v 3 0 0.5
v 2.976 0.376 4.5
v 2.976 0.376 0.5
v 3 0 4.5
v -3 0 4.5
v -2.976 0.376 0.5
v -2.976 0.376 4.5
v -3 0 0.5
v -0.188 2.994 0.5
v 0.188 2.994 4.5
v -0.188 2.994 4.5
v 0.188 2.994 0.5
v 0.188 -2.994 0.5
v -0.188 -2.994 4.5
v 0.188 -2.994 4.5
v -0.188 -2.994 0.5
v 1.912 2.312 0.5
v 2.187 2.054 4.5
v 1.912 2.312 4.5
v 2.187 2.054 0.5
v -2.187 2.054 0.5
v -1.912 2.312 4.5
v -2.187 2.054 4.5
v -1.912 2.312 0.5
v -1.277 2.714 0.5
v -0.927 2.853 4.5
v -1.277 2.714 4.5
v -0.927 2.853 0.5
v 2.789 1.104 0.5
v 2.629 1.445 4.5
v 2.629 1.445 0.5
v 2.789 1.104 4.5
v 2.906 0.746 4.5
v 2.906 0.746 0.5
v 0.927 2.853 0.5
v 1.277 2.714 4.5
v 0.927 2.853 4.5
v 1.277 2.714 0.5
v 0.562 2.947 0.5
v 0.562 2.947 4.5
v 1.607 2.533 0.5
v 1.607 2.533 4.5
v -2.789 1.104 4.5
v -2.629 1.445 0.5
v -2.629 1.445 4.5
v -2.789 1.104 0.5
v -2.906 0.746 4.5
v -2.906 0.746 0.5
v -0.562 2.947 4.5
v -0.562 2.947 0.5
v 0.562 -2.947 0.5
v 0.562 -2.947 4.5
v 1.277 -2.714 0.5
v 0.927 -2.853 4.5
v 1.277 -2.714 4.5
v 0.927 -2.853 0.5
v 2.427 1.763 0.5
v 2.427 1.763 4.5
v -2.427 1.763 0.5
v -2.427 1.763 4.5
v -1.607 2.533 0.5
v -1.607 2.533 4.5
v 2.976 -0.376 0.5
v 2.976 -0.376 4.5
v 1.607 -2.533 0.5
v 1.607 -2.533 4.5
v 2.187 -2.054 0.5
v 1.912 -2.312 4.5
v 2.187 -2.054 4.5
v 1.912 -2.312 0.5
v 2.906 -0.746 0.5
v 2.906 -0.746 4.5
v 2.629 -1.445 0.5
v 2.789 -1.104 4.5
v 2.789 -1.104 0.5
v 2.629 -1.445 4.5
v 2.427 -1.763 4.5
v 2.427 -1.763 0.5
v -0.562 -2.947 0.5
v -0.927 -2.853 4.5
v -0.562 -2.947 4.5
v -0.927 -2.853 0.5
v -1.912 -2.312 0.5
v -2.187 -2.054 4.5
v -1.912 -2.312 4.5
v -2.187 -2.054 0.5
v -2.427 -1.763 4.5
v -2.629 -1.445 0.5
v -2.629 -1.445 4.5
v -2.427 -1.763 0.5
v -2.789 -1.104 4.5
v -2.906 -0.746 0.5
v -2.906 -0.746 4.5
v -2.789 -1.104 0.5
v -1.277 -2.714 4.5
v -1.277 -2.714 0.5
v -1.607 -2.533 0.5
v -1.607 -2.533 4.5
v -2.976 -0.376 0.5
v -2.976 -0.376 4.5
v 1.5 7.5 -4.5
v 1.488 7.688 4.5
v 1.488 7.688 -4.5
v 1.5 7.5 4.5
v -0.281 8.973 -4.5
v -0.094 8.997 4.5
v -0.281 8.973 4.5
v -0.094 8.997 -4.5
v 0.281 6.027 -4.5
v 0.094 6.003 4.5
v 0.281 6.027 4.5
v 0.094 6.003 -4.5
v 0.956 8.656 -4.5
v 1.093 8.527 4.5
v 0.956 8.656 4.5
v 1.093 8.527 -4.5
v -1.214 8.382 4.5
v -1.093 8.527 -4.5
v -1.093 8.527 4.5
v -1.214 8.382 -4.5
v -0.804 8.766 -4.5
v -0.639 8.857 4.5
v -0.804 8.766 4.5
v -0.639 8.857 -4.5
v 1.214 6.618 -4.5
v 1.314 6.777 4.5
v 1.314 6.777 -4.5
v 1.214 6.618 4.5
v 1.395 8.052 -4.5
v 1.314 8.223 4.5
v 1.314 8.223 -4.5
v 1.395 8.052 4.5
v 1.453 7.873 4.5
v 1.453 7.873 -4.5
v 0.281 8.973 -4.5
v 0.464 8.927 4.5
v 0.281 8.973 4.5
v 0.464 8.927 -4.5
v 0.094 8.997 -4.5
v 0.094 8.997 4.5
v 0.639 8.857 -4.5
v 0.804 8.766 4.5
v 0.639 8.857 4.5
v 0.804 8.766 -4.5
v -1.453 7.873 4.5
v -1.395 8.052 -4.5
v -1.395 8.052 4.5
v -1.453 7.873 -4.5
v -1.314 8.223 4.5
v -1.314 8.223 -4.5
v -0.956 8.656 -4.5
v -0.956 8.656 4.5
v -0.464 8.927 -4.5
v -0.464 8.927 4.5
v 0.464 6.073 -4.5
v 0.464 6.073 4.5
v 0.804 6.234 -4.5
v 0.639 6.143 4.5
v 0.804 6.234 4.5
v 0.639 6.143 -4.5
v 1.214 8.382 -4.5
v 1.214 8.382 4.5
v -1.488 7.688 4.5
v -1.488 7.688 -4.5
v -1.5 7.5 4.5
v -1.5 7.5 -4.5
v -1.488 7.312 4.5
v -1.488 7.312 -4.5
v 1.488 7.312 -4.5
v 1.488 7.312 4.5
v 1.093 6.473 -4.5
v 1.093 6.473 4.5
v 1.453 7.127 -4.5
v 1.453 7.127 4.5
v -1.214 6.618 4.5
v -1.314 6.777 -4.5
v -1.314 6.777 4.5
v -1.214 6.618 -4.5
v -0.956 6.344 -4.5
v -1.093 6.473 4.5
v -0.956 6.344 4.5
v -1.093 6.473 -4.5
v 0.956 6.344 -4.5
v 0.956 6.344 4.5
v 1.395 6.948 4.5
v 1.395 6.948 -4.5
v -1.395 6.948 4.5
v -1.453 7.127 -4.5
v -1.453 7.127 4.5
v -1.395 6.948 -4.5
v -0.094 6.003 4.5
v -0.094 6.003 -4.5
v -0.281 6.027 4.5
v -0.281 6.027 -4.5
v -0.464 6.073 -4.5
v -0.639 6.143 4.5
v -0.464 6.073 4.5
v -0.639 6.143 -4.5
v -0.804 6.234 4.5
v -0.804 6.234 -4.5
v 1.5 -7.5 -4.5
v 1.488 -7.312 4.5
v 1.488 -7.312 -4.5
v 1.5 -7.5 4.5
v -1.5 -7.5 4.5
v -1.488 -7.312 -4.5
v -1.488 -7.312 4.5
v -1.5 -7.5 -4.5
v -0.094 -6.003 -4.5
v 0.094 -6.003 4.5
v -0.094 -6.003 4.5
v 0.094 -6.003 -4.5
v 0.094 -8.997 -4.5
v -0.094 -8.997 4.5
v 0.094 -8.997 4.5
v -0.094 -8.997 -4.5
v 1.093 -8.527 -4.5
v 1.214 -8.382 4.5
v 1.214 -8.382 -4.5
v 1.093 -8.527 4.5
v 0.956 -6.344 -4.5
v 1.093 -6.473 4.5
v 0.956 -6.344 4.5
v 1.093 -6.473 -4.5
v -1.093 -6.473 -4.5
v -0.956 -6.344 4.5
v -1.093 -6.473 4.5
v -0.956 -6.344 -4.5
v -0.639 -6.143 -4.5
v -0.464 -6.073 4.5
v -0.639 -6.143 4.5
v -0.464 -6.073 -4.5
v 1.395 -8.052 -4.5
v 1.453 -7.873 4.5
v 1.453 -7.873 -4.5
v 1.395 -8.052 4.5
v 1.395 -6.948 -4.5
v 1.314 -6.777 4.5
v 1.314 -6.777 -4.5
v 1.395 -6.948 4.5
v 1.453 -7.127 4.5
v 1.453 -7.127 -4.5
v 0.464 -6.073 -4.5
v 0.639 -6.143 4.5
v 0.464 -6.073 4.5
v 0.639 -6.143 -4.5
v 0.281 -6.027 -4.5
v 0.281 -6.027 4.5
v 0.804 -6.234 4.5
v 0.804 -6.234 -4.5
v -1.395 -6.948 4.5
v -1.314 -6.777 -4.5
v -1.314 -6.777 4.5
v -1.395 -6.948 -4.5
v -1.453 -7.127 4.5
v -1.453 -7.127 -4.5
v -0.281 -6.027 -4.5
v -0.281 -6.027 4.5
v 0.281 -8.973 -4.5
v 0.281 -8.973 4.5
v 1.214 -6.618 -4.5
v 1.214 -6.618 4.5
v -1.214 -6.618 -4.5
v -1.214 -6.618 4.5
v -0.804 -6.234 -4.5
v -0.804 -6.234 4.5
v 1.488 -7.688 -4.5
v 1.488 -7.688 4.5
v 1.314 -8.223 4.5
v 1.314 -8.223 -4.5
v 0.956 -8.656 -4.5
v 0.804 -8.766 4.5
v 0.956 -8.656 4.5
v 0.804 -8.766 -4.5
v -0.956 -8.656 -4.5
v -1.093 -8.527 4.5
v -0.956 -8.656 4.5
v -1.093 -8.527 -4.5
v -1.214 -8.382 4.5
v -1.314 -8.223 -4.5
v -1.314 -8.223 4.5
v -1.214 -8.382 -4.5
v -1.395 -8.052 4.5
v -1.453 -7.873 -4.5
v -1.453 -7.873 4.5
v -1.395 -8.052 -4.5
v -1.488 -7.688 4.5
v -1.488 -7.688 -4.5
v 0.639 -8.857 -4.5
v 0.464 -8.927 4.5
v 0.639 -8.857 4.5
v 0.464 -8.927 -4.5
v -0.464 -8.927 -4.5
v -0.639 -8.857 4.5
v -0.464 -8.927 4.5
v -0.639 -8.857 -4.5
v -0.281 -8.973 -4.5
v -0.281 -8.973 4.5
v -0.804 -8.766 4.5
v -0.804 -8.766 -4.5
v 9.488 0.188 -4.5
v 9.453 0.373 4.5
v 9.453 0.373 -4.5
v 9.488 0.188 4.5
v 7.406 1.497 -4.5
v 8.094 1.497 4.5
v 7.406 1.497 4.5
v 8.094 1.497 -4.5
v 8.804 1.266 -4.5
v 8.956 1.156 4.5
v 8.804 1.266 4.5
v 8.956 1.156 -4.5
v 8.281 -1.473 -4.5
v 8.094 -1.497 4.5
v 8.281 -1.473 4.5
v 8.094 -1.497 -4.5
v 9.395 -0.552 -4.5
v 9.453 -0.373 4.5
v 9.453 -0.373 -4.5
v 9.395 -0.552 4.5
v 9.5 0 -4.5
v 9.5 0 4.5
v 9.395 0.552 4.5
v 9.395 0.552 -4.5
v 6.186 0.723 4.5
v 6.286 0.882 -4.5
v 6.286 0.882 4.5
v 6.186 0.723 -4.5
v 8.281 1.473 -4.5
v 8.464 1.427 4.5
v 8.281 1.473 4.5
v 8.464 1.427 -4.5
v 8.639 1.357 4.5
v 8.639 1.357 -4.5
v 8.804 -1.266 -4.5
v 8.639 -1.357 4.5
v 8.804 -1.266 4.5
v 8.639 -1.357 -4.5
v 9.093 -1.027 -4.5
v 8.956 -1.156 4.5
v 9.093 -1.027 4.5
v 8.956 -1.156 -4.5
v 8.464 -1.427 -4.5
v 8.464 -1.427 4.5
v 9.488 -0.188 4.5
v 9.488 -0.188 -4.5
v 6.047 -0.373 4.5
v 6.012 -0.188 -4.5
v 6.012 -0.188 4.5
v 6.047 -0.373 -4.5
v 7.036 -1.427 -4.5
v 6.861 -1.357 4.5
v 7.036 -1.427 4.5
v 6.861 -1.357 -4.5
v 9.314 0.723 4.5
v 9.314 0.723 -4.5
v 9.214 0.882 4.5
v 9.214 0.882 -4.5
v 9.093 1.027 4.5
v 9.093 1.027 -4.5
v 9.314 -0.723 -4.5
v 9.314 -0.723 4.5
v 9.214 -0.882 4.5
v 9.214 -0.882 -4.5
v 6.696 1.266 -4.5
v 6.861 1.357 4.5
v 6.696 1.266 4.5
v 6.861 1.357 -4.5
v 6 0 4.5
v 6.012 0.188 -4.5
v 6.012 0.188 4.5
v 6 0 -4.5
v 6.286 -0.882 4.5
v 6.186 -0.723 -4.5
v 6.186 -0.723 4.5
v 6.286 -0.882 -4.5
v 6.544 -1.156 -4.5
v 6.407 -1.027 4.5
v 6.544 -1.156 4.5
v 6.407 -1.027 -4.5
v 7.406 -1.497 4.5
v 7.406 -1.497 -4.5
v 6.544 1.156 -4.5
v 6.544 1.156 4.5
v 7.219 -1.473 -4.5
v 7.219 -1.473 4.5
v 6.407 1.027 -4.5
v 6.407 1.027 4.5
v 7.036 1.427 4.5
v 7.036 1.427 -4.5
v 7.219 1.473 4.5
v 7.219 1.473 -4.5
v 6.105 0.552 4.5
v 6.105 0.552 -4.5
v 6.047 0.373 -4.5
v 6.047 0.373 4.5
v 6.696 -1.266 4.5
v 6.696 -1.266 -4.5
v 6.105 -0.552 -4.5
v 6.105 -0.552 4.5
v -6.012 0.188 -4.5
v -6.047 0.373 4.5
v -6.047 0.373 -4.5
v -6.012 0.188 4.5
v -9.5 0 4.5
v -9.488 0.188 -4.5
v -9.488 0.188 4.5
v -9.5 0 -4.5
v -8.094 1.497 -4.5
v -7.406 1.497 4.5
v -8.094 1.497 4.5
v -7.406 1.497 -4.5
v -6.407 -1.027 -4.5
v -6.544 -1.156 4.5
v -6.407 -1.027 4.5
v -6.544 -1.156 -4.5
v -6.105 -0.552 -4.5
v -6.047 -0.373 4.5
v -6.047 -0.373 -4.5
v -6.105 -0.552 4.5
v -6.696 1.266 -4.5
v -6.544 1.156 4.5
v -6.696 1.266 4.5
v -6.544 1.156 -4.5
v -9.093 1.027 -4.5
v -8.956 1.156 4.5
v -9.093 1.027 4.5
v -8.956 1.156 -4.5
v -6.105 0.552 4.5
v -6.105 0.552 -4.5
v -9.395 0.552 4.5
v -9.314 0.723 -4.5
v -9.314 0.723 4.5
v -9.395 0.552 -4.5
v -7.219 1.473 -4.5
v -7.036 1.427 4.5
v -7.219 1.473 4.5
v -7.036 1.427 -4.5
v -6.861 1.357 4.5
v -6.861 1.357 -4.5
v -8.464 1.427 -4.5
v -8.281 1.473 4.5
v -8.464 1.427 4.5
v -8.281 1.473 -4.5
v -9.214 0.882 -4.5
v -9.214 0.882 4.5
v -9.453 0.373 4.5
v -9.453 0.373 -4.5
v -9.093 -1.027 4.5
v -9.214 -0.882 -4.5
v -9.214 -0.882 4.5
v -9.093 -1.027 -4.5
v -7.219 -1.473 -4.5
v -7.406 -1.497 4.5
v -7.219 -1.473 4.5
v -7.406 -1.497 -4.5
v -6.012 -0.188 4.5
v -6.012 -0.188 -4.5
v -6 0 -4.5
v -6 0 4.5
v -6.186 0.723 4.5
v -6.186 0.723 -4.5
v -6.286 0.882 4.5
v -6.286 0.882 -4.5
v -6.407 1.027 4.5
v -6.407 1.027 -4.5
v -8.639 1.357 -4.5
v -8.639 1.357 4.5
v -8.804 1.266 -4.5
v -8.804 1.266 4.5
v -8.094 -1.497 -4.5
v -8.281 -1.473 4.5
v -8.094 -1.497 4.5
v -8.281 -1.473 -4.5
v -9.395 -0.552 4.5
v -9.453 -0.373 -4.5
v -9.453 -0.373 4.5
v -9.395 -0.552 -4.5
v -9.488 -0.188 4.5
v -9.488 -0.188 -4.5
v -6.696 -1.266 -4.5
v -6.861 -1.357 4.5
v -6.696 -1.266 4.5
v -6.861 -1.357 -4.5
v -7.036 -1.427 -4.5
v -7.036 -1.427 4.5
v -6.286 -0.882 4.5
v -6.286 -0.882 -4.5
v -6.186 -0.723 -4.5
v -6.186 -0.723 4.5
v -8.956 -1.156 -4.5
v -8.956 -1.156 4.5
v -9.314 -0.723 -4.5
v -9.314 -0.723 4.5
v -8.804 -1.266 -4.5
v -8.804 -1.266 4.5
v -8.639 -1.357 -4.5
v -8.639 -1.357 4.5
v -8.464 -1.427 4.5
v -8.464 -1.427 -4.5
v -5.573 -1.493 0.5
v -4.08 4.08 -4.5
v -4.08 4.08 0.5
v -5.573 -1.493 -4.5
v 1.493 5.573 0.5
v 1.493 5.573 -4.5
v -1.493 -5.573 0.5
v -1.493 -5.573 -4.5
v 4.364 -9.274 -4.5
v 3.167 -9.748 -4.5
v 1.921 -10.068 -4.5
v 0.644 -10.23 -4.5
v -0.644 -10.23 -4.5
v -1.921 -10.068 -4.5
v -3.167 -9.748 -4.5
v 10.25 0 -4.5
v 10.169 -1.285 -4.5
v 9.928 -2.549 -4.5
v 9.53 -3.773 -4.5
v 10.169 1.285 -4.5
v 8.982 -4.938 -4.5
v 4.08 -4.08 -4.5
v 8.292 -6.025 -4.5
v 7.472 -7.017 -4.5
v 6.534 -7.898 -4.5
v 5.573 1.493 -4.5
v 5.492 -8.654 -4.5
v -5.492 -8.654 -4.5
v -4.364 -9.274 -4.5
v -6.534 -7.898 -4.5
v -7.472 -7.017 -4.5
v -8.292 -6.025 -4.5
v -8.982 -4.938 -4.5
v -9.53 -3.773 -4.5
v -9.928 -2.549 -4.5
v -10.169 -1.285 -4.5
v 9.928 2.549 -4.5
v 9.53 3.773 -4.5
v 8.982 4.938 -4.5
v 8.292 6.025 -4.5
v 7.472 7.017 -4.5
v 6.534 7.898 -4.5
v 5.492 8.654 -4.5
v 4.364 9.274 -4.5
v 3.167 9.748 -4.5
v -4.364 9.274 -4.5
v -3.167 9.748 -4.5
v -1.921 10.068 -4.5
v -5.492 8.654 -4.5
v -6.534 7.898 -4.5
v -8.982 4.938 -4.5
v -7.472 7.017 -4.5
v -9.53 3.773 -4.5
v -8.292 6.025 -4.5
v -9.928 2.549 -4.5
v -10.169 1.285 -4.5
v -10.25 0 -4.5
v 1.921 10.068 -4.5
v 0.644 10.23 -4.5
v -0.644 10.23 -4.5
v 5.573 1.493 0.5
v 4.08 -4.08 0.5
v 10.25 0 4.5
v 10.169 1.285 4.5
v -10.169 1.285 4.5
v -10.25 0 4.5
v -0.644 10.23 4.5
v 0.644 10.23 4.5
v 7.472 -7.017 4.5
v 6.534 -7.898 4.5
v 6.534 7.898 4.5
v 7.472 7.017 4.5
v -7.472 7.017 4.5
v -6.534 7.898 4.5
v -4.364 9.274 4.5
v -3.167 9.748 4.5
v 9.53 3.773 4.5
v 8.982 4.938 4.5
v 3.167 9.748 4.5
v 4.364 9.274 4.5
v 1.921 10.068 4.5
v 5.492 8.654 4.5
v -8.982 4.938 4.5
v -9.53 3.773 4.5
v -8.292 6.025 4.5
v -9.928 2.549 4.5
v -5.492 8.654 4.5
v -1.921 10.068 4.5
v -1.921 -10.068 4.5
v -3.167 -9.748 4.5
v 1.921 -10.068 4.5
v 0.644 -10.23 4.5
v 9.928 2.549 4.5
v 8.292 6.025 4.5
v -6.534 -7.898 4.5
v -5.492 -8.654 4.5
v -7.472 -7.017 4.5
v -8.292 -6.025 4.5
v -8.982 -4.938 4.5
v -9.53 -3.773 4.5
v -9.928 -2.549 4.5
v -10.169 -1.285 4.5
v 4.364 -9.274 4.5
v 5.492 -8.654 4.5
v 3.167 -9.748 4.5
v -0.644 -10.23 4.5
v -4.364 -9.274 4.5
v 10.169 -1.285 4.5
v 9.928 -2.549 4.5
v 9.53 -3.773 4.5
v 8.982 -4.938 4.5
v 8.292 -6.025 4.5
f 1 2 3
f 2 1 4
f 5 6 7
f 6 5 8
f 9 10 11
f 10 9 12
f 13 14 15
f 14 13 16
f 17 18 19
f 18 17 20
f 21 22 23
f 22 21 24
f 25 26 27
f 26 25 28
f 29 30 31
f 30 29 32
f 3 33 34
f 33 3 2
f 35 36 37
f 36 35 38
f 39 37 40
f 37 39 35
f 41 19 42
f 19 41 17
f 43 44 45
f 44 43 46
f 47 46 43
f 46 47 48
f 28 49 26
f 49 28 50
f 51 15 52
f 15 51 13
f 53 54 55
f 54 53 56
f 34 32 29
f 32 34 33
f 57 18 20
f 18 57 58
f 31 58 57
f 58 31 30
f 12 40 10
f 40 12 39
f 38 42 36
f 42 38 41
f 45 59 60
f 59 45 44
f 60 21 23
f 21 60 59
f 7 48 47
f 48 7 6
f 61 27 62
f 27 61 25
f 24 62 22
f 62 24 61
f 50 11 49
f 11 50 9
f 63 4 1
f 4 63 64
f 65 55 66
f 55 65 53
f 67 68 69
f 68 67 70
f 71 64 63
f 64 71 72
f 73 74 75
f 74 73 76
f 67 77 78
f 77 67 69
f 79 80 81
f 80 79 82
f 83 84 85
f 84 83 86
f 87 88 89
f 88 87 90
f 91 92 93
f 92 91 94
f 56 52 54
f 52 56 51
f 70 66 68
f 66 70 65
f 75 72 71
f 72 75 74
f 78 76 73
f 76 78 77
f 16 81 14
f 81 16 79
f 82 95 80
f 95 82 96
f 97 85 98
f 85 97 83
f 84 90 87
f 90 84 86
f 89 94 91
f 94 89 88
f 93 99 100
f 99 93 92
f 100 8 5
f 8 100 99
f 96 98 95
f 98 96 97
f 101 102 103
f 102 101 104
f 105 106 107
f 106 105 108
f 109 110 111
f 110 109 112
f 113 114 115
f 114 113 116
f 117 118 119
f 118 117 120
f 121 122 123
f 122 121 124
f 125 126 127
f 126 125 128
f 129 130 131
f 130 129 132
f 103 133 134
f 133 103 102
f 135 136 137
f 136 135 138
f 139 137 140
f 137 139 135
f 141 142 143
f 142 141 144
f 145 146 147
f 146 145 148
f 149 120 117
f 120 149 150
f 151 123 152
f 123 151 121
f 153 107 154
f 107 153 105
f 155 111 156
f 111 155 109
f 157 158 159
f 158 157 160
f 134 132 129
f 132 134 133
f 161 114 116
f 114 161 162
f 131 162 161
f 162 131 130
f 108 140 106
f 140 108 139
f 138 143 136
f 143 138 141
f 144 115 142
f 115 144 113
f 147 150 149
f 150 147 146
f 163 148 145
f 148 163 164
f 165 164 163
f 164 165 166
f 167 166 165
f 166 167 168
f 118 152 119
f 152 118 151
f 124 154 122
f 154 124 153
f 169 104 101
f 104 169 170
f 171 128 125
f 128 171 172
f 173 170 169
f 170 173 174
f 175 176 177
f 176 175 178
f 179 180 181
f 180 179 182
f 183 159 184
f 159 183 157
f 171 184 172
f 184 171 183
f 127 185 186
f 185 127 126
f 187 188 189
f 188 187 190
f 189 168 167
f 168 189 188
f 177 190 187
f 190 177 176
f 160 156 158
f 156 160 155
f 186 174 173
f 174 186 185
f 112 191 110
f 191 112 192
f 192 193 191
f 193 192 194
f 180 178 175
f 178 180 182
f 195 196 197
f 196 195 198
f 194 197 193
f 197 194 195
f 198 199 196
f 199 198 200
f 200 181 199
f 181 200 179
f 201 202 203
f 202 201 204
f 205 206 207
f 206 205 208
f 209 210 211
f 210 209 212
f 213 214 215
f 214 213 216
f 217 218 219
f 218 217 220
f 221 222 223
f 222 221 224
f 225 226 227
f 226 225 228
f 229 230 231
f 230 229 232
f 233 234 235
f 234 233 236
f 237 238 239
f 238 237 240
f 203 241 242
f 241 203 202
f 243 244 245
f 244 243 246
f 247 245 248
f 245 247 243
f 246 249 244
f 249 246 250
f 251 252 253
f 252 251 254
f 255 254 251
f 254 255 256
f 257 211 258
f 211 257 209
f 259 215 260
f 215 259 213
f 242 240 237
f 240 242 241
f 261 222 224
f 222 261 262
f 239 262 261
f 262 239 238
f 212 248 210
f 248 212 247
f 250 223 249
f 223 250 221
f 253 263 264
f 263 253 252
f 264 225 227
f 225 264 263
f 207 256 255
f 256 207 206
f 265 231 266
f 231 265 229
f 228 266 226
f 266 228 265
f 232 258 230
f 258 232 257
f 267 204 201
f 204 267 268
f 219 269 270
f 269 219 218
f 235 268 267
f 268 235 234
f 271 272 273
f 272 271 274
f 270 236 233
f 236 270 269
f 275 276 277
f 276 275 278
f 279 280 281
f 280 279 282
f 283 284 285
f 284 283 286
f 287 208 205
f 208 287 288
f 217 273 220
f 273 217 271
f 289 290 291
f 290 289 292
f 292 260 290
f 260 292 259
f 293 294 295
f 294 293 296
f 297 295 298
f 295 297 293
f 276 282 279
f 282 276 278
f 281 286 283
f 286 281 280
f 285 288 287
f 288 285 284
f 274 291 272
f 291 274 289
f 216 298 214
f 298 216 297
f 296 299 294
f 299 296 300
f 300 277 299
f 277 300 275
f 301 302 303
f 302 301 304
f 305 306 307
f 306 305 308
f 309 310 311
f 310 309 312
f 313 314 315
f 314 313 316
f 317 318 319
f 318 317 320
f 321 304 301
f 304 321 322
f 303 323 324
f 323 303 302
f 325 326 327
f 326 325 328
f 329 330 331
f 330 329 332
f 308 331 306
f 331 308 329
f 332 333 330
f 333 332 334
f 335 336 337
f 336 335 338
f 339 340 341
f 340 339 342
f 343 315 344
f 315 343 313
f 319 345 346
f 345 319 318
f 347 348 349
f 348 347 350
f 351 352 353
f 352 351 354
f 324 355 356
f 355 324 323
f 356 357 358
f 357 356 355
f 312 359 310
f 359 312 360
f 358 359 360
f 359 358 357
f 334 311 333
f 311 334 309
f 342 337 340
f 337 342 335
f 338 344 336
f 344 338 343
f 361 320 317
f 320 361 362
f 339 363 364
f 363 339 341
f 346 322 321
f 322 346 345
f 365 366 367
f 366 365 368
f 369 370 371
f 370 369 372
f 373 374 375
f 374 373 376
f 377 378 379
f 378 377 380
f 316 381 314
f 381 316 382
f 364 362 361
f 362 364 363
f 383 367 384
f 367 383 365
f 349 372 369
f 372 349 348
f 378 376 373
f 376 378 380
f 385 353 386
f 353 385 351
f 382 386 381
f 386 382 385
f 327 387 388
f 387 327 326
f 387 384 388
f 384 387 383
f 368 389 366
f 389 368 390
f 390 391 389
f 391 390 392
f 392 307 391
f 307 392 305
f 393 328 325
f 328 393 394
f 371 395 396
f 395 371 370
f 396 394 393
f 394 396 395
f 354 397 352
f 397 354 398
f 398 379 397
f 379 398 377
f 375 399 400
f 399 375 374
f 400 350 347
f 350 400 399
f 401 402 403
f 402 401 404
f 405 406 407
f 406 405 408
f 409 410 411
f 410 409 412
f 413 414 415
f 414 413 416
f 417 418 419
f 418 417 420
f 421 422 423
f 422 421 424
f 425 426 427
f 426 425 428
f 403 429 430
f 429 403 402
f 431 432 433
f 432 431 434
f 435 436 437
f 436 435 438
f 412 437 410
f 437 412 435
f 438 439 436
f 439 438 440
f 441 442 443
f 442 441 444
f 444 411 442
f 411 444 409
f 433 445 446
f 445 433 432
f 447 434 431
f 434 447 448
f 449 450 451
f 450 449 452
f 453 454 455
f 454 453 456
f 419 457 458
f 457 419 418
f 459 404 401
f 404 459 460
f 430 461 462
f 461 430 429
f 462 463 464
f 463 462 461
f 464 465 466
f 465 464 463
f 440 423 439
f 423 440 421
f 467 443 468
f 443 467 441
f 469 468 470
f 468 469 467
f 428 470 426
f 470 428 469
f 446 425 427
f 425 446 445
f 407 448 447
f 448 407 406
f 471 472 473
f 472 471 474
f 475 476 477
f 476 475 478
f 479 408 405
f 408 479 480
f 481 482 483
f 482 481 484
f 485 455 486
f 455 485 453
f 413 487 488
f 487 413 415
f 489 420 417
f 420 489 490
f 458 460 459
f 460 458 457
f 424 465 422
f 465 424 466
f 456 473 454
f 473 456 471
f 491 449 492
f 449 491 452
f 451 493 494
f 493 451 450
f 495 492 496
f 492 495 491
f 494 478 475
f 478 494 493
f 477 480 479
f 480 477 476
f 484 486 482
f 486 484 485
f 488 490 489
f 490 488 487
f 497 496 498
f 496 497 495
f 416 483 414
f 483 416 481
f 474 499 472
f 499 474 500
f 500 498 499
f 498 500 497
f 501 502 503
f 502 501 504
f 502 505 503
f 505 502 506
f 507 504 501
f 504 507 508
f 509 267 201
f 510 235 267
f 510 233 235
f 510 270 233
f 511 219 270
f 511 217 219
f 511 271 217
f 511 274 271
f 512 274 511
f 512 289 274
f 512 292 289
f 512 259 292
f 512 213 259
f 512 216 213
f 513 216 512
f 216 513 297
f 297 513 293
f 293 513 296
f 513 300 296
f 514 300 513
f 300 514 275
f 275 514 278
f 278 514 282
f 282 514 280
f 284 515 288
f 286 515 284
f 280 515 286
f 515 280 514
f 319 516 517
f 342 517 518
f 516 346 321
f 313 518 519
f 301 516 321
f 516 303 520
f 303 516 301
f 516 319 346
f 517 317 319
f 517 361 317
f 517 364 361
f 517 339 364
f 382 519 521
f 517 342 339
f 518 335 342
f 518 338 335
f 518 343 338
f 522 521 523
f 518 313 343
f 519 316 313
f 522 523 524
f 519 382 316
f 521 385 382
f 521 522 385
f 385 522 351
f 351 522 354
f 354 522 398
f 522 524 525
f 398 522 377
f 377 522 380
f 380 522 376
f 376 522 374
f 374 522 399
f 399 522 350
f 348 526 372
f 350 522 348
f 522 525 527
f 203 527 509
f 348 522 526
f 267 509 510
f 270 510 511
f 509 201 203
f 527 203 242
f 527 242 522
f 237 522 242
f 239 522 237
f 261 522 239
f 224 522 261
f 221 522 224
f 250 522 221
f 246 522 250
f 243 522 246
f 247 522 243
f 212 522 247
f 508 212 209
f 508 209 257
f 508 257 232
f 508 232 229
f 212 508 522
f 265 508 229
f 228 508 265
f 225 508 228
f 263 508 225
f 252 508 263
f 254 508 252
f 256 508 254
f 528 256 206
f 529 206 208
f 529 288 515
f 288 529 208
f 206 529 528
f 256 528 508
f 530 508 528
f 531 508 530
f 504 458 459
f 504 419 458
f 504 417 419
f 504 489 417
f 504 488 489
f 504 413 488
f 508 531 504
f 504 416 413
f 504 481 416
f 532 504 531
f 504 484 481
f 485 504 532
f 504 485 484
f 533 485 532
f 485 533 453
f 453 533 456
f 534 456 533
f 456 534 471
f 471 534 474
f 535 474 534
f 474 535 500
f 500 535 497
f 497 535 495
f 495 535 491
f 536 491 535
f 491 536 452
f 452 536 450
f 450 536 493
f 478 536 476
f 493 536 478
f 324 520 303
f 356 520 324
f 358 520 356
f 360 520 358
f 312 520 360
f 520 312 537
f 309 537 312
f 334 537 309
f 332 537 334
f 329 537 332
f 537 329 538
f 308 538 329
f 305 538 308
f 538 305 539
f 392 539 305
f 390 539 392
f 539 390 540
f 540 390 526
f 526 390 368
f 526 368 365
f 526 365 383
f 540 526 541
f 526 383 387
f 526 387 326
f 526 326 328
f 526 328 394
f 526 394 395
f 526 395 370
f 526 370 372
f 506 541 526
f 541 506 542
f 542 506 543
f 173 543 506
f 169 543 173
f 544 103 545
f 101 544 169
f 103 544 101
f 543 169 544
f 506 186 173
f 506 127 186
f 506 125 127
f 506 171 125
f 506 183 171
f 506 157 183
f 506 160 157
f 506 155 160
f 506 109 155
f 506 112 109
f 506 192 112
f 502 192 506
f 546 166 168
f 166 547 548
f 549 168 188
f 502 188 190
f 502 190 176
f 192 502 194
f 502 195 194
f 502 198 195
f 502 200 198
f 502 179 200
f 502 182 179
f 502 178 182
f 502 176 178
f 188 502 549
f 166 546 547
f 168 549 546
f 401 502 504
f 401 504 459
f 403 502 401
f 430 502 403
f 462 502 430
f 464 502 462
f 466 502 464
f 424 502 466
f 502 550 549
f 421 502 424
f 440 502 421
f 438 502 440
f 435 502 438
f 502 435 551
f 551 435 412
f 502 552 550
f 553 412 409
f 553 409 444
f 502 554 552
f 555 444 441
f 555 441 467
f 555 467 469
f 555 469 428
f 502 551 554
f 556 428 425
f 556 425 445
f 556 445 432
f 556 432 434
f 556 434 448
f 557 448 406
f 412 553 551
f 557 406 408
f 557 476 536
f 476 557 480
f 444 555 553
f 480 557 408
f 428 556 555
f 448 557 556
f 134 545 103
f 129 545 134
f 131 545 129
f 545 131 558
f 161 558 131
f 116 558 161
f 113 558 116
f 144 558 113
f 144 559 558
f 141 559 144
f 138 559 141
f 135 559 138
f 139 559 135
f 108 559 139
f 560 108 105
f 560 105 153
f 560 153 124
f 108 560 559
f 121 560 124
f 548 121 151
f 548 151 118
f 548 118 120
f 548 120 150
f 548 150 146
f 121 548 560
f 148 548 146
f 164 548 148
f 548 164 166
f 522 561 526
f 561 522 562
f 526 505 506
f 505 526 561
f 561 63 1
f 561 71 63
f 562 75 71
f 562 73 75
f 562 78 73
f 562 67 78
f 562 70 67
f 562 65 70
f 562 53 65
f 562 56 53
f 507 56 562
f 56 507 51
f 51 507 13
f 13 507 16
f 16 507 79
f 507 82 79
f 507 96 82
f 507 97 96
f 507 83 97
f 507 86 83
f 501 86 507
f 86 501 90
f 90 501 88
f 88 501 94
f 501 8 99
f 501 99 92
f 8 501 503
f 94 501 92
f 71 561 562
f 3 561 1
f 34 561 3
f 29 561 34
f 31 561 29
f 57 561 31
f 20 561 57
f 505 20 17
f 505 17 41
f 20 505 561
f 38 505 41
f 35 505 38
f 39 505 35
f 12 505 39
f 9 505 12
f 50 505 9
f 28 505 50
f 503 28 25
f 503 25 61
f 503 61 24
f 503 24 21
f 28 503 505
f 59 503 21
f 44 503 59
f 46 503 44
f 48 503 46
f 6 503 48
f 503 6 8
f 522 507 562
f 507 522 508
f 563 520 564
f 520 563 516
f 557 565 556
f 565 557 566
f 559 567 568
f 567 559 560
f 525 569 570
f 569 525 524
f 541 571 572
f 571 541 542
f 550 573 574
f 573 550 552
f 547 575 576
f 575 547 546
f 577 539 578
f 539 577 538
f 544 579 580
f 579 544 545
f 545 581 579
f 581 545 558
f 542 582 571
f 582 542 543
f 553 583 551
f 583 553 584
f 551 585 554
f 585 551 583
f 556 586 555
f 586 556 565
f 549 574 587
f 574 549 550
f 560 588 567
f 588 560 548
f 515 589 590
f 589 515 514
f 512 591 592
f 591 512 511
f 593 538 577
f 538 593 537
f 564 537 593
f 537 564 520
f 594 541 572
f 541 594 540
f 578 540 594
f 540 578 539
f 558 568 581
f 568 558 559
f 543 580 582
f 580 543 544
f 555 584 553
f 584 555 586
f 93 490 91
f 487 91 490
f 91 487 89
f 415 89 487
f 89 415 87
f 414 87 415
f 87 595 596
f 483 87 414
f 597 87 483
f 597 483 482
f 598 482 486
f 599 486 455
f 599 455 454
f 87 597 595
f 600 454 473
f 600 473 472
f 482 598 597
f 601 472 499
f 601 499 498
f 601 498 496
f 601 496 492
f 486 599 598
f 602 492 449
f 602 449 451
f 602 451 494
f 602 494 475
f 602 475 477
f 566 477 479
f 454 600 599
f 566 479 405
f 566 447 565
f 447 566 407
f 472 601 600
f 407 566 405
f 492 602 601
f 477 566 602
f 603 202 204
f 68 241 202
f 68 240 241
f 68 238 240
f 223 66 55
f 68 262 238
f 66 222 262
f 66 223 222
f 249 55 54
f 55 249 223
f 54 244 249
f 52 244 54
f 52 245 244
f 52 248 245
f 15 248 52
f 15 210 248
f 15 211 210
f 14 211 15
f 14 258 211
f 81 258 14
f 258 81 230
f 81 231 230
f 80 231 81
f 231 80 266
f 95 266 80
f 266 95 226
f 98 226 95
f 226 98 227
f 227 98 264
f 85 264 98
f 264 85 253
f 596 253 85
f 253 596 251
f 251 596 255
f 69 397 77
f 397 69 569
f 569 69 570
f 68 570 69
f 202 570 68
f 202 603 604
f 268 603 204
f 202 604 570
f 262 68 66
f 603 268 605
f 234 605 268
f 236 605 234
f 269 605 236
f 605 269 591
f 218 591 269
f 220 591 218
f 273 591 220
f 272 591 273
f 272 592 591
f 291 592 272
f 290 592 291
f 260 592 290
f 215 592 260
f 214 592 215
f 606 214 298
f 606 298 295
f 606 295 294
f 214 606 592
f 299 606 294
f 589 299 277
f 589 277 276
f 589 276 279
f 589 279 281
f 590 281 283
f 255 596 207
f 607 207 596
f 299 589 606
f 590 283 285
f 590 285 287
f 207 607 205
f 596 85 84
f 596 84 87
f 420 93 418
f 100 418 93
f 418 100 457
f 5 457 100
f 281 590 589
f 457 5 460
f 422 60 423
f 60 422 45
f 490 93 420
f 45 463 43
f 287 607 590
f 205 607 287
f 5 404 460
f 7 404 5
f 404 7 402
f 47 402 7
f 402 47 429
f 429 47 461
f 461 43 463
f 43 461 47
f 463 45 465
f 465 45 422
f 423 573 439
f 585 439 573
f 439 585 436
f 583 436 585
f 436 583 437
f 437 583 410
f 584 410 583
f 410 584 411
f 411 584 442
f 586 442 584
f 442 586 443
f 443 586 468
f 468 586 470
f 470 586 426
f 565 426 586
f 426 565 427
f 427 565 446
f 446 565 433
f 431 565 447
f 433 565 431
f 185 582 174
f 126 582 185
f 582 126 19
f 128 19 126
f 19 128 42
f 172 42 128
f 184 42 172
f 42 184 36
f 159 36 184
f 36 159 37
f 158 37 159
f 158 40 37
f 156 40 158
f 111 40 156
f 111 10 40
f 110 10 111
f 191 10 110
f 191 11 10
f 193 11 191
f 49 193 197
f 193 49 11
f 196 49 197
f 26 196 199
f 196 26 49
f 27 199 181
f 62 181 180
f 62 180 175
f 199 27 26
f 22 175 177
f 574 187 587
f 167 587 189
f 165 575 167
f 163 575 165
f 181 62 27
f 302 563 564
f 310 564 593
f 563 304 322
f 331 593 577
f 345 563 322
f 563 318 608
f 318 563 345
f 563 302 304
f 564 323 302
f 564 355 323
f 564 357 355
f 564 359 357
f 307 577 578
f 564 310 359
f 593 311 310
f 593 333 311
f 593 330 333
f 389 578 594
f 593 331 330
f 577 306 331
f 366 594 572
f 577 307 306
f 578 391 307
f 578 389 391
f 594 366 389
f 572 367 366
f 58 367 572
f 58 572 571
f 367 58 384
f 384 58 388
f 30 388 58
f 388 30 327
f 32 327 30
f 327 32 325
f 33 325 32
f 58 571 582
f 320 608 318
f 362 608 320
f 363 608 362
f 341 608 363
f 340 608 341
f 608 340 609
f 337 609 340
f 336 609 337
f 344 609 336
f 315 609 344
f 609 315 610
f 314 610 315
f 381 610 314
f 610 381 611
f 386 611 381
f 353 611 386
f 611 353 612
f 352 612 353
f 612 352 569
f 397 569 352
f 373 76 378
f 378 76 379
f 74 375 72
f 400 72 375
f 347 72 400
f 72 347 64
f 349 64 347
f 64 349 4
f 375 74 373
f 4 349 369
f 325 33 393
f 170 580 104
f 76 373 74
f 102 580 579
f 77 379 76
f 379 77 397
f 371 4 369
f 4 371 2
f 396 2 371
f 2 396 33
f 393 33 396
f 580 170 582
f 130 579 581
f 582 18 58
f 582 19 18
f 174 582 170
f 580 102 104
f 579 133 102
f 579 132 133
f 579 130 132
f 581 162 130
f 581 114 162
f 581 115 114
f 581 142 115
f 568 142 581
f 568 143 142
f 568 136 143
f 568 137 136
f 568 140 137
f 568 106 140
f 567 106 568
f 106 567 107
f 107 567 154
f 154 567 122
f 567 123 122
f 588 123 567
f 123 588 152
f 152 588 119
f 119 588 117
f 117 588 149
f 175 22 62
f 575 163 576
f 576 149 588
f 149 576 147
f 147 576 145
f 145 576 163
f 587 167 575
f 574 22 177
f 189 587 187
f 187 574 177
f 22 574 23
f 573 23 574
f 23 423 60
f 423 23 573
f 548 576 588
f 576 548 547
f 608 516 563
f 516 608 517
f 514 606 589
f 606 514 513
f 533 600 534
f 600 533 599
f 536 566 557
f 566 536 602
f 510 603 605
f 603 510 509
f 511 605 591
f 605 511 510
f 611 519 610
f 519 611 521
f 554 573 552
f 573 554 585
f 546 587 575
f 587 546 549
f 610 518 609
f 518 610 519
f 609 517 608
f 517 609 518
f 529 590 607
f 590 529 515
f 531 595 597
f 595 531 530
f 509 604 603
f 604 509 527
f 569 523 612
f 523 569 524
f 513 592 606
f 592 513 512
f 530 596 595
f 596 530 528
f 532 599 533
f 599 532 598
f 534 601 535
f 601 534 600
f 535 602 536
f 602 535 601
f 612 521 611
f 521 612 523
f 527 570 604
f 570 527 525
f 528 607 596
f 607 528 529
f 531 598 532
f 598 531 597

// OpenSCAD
$fn = 50;


difference() {
	union() {
		translate(v = [0, 0, -4.5000000000]) {
			rotate(a = [0, 0, 0]) {
				cylinder(h = 9, r = 10.2500000000);
			}
		}
	}
	union() {
		translate(v = [0, 0, -125.0000000000]) {
			rotate(a = [0, 0, 0]) {
				cylinder(h = 250, r = 3.0000000000);
			}
		}
		translate(v = [0, 7.5000000000, -125.0000000000]) {
			rotate(a = [0, 0, 0]) {
				cylinder(h = 250, r = 1.5000000000);
			}
		}
		translate(v = [0, -7.5000000000, -125.0000000000]) {
			rotate(a = [0, 0, 0]) {
				cylinder(h = 250, r = 1.5000000000);
			}
		}
		translate(v = [7.7500000000, 0, -125.0000000000]) {
			rotate(a = [0, 0, 0]) {
				hull() {
					translate(v = [0.2500000000, 0, 0]) {
						rotate(a = [0, 0, 0]) {
							translate(v = [0, 0, 0]) {
								rotate(a = [0, 0, 0]) {
									cylinder(h = 250, r = 1.5000000000);
								}
							}
						}
					}
					translate(v = [-0.2500000000, 0, 0]) {
						rotate(a = [0, 0, 0]) {
							translate(v = [0, 0, 0]) {
								rotate(a = [0, 0, 0]) {
									cylinder(h = 250, r = 1.5000000000);
								}
							}
						}
					}
				}
			}
		}
		translate(v = [-7.7500000000, 0, -125.0000000000]) {
			rotate(a = [0, 0, 0]) {
				hull() {
					translate(v = [0.2500000000, 0, 0]) {
						rotate(a = [0, 0, 0]) {
							translate(v = [0, 0, 0]) {
								rotate(a = [0, 0, 0]) {
									cylinder(h = 250, r = 1.5000000000);
								}
							}
						}
					}
					translate(v = [-0.2500000000, 0, 0]) {
						rotate(a = [0, 0, 0]) {
							translate(v = [0, 0, 0]) {
								rotate(a = [0, 0, 0]) {
									cylinder(h = 250, r = 1.5000000000);
								}
							}
						}
					}
				}
			}
		}
		translate(v = [0, 0, -4.5000000000]) {
			rotate(a = [0, 0, 15.0000000000]) {
				translate(v = [0, 0, 0]) {
					rotate(a = [0, 0, 15.0000000000]) {
						linear_extrude(height = 5) {
							polygon(points = [[5.7700000000, 0.0000000000], [2.8850000000, 4.9969665798], [-2.8850000000, 4.9969665798], [-5.7700000000, 0.0000000000], [-2.8850000000, -4.9969665798], [2.8850000000, -4.9969665798]]);
						}
					}
				}
			}
		}
	}
}
